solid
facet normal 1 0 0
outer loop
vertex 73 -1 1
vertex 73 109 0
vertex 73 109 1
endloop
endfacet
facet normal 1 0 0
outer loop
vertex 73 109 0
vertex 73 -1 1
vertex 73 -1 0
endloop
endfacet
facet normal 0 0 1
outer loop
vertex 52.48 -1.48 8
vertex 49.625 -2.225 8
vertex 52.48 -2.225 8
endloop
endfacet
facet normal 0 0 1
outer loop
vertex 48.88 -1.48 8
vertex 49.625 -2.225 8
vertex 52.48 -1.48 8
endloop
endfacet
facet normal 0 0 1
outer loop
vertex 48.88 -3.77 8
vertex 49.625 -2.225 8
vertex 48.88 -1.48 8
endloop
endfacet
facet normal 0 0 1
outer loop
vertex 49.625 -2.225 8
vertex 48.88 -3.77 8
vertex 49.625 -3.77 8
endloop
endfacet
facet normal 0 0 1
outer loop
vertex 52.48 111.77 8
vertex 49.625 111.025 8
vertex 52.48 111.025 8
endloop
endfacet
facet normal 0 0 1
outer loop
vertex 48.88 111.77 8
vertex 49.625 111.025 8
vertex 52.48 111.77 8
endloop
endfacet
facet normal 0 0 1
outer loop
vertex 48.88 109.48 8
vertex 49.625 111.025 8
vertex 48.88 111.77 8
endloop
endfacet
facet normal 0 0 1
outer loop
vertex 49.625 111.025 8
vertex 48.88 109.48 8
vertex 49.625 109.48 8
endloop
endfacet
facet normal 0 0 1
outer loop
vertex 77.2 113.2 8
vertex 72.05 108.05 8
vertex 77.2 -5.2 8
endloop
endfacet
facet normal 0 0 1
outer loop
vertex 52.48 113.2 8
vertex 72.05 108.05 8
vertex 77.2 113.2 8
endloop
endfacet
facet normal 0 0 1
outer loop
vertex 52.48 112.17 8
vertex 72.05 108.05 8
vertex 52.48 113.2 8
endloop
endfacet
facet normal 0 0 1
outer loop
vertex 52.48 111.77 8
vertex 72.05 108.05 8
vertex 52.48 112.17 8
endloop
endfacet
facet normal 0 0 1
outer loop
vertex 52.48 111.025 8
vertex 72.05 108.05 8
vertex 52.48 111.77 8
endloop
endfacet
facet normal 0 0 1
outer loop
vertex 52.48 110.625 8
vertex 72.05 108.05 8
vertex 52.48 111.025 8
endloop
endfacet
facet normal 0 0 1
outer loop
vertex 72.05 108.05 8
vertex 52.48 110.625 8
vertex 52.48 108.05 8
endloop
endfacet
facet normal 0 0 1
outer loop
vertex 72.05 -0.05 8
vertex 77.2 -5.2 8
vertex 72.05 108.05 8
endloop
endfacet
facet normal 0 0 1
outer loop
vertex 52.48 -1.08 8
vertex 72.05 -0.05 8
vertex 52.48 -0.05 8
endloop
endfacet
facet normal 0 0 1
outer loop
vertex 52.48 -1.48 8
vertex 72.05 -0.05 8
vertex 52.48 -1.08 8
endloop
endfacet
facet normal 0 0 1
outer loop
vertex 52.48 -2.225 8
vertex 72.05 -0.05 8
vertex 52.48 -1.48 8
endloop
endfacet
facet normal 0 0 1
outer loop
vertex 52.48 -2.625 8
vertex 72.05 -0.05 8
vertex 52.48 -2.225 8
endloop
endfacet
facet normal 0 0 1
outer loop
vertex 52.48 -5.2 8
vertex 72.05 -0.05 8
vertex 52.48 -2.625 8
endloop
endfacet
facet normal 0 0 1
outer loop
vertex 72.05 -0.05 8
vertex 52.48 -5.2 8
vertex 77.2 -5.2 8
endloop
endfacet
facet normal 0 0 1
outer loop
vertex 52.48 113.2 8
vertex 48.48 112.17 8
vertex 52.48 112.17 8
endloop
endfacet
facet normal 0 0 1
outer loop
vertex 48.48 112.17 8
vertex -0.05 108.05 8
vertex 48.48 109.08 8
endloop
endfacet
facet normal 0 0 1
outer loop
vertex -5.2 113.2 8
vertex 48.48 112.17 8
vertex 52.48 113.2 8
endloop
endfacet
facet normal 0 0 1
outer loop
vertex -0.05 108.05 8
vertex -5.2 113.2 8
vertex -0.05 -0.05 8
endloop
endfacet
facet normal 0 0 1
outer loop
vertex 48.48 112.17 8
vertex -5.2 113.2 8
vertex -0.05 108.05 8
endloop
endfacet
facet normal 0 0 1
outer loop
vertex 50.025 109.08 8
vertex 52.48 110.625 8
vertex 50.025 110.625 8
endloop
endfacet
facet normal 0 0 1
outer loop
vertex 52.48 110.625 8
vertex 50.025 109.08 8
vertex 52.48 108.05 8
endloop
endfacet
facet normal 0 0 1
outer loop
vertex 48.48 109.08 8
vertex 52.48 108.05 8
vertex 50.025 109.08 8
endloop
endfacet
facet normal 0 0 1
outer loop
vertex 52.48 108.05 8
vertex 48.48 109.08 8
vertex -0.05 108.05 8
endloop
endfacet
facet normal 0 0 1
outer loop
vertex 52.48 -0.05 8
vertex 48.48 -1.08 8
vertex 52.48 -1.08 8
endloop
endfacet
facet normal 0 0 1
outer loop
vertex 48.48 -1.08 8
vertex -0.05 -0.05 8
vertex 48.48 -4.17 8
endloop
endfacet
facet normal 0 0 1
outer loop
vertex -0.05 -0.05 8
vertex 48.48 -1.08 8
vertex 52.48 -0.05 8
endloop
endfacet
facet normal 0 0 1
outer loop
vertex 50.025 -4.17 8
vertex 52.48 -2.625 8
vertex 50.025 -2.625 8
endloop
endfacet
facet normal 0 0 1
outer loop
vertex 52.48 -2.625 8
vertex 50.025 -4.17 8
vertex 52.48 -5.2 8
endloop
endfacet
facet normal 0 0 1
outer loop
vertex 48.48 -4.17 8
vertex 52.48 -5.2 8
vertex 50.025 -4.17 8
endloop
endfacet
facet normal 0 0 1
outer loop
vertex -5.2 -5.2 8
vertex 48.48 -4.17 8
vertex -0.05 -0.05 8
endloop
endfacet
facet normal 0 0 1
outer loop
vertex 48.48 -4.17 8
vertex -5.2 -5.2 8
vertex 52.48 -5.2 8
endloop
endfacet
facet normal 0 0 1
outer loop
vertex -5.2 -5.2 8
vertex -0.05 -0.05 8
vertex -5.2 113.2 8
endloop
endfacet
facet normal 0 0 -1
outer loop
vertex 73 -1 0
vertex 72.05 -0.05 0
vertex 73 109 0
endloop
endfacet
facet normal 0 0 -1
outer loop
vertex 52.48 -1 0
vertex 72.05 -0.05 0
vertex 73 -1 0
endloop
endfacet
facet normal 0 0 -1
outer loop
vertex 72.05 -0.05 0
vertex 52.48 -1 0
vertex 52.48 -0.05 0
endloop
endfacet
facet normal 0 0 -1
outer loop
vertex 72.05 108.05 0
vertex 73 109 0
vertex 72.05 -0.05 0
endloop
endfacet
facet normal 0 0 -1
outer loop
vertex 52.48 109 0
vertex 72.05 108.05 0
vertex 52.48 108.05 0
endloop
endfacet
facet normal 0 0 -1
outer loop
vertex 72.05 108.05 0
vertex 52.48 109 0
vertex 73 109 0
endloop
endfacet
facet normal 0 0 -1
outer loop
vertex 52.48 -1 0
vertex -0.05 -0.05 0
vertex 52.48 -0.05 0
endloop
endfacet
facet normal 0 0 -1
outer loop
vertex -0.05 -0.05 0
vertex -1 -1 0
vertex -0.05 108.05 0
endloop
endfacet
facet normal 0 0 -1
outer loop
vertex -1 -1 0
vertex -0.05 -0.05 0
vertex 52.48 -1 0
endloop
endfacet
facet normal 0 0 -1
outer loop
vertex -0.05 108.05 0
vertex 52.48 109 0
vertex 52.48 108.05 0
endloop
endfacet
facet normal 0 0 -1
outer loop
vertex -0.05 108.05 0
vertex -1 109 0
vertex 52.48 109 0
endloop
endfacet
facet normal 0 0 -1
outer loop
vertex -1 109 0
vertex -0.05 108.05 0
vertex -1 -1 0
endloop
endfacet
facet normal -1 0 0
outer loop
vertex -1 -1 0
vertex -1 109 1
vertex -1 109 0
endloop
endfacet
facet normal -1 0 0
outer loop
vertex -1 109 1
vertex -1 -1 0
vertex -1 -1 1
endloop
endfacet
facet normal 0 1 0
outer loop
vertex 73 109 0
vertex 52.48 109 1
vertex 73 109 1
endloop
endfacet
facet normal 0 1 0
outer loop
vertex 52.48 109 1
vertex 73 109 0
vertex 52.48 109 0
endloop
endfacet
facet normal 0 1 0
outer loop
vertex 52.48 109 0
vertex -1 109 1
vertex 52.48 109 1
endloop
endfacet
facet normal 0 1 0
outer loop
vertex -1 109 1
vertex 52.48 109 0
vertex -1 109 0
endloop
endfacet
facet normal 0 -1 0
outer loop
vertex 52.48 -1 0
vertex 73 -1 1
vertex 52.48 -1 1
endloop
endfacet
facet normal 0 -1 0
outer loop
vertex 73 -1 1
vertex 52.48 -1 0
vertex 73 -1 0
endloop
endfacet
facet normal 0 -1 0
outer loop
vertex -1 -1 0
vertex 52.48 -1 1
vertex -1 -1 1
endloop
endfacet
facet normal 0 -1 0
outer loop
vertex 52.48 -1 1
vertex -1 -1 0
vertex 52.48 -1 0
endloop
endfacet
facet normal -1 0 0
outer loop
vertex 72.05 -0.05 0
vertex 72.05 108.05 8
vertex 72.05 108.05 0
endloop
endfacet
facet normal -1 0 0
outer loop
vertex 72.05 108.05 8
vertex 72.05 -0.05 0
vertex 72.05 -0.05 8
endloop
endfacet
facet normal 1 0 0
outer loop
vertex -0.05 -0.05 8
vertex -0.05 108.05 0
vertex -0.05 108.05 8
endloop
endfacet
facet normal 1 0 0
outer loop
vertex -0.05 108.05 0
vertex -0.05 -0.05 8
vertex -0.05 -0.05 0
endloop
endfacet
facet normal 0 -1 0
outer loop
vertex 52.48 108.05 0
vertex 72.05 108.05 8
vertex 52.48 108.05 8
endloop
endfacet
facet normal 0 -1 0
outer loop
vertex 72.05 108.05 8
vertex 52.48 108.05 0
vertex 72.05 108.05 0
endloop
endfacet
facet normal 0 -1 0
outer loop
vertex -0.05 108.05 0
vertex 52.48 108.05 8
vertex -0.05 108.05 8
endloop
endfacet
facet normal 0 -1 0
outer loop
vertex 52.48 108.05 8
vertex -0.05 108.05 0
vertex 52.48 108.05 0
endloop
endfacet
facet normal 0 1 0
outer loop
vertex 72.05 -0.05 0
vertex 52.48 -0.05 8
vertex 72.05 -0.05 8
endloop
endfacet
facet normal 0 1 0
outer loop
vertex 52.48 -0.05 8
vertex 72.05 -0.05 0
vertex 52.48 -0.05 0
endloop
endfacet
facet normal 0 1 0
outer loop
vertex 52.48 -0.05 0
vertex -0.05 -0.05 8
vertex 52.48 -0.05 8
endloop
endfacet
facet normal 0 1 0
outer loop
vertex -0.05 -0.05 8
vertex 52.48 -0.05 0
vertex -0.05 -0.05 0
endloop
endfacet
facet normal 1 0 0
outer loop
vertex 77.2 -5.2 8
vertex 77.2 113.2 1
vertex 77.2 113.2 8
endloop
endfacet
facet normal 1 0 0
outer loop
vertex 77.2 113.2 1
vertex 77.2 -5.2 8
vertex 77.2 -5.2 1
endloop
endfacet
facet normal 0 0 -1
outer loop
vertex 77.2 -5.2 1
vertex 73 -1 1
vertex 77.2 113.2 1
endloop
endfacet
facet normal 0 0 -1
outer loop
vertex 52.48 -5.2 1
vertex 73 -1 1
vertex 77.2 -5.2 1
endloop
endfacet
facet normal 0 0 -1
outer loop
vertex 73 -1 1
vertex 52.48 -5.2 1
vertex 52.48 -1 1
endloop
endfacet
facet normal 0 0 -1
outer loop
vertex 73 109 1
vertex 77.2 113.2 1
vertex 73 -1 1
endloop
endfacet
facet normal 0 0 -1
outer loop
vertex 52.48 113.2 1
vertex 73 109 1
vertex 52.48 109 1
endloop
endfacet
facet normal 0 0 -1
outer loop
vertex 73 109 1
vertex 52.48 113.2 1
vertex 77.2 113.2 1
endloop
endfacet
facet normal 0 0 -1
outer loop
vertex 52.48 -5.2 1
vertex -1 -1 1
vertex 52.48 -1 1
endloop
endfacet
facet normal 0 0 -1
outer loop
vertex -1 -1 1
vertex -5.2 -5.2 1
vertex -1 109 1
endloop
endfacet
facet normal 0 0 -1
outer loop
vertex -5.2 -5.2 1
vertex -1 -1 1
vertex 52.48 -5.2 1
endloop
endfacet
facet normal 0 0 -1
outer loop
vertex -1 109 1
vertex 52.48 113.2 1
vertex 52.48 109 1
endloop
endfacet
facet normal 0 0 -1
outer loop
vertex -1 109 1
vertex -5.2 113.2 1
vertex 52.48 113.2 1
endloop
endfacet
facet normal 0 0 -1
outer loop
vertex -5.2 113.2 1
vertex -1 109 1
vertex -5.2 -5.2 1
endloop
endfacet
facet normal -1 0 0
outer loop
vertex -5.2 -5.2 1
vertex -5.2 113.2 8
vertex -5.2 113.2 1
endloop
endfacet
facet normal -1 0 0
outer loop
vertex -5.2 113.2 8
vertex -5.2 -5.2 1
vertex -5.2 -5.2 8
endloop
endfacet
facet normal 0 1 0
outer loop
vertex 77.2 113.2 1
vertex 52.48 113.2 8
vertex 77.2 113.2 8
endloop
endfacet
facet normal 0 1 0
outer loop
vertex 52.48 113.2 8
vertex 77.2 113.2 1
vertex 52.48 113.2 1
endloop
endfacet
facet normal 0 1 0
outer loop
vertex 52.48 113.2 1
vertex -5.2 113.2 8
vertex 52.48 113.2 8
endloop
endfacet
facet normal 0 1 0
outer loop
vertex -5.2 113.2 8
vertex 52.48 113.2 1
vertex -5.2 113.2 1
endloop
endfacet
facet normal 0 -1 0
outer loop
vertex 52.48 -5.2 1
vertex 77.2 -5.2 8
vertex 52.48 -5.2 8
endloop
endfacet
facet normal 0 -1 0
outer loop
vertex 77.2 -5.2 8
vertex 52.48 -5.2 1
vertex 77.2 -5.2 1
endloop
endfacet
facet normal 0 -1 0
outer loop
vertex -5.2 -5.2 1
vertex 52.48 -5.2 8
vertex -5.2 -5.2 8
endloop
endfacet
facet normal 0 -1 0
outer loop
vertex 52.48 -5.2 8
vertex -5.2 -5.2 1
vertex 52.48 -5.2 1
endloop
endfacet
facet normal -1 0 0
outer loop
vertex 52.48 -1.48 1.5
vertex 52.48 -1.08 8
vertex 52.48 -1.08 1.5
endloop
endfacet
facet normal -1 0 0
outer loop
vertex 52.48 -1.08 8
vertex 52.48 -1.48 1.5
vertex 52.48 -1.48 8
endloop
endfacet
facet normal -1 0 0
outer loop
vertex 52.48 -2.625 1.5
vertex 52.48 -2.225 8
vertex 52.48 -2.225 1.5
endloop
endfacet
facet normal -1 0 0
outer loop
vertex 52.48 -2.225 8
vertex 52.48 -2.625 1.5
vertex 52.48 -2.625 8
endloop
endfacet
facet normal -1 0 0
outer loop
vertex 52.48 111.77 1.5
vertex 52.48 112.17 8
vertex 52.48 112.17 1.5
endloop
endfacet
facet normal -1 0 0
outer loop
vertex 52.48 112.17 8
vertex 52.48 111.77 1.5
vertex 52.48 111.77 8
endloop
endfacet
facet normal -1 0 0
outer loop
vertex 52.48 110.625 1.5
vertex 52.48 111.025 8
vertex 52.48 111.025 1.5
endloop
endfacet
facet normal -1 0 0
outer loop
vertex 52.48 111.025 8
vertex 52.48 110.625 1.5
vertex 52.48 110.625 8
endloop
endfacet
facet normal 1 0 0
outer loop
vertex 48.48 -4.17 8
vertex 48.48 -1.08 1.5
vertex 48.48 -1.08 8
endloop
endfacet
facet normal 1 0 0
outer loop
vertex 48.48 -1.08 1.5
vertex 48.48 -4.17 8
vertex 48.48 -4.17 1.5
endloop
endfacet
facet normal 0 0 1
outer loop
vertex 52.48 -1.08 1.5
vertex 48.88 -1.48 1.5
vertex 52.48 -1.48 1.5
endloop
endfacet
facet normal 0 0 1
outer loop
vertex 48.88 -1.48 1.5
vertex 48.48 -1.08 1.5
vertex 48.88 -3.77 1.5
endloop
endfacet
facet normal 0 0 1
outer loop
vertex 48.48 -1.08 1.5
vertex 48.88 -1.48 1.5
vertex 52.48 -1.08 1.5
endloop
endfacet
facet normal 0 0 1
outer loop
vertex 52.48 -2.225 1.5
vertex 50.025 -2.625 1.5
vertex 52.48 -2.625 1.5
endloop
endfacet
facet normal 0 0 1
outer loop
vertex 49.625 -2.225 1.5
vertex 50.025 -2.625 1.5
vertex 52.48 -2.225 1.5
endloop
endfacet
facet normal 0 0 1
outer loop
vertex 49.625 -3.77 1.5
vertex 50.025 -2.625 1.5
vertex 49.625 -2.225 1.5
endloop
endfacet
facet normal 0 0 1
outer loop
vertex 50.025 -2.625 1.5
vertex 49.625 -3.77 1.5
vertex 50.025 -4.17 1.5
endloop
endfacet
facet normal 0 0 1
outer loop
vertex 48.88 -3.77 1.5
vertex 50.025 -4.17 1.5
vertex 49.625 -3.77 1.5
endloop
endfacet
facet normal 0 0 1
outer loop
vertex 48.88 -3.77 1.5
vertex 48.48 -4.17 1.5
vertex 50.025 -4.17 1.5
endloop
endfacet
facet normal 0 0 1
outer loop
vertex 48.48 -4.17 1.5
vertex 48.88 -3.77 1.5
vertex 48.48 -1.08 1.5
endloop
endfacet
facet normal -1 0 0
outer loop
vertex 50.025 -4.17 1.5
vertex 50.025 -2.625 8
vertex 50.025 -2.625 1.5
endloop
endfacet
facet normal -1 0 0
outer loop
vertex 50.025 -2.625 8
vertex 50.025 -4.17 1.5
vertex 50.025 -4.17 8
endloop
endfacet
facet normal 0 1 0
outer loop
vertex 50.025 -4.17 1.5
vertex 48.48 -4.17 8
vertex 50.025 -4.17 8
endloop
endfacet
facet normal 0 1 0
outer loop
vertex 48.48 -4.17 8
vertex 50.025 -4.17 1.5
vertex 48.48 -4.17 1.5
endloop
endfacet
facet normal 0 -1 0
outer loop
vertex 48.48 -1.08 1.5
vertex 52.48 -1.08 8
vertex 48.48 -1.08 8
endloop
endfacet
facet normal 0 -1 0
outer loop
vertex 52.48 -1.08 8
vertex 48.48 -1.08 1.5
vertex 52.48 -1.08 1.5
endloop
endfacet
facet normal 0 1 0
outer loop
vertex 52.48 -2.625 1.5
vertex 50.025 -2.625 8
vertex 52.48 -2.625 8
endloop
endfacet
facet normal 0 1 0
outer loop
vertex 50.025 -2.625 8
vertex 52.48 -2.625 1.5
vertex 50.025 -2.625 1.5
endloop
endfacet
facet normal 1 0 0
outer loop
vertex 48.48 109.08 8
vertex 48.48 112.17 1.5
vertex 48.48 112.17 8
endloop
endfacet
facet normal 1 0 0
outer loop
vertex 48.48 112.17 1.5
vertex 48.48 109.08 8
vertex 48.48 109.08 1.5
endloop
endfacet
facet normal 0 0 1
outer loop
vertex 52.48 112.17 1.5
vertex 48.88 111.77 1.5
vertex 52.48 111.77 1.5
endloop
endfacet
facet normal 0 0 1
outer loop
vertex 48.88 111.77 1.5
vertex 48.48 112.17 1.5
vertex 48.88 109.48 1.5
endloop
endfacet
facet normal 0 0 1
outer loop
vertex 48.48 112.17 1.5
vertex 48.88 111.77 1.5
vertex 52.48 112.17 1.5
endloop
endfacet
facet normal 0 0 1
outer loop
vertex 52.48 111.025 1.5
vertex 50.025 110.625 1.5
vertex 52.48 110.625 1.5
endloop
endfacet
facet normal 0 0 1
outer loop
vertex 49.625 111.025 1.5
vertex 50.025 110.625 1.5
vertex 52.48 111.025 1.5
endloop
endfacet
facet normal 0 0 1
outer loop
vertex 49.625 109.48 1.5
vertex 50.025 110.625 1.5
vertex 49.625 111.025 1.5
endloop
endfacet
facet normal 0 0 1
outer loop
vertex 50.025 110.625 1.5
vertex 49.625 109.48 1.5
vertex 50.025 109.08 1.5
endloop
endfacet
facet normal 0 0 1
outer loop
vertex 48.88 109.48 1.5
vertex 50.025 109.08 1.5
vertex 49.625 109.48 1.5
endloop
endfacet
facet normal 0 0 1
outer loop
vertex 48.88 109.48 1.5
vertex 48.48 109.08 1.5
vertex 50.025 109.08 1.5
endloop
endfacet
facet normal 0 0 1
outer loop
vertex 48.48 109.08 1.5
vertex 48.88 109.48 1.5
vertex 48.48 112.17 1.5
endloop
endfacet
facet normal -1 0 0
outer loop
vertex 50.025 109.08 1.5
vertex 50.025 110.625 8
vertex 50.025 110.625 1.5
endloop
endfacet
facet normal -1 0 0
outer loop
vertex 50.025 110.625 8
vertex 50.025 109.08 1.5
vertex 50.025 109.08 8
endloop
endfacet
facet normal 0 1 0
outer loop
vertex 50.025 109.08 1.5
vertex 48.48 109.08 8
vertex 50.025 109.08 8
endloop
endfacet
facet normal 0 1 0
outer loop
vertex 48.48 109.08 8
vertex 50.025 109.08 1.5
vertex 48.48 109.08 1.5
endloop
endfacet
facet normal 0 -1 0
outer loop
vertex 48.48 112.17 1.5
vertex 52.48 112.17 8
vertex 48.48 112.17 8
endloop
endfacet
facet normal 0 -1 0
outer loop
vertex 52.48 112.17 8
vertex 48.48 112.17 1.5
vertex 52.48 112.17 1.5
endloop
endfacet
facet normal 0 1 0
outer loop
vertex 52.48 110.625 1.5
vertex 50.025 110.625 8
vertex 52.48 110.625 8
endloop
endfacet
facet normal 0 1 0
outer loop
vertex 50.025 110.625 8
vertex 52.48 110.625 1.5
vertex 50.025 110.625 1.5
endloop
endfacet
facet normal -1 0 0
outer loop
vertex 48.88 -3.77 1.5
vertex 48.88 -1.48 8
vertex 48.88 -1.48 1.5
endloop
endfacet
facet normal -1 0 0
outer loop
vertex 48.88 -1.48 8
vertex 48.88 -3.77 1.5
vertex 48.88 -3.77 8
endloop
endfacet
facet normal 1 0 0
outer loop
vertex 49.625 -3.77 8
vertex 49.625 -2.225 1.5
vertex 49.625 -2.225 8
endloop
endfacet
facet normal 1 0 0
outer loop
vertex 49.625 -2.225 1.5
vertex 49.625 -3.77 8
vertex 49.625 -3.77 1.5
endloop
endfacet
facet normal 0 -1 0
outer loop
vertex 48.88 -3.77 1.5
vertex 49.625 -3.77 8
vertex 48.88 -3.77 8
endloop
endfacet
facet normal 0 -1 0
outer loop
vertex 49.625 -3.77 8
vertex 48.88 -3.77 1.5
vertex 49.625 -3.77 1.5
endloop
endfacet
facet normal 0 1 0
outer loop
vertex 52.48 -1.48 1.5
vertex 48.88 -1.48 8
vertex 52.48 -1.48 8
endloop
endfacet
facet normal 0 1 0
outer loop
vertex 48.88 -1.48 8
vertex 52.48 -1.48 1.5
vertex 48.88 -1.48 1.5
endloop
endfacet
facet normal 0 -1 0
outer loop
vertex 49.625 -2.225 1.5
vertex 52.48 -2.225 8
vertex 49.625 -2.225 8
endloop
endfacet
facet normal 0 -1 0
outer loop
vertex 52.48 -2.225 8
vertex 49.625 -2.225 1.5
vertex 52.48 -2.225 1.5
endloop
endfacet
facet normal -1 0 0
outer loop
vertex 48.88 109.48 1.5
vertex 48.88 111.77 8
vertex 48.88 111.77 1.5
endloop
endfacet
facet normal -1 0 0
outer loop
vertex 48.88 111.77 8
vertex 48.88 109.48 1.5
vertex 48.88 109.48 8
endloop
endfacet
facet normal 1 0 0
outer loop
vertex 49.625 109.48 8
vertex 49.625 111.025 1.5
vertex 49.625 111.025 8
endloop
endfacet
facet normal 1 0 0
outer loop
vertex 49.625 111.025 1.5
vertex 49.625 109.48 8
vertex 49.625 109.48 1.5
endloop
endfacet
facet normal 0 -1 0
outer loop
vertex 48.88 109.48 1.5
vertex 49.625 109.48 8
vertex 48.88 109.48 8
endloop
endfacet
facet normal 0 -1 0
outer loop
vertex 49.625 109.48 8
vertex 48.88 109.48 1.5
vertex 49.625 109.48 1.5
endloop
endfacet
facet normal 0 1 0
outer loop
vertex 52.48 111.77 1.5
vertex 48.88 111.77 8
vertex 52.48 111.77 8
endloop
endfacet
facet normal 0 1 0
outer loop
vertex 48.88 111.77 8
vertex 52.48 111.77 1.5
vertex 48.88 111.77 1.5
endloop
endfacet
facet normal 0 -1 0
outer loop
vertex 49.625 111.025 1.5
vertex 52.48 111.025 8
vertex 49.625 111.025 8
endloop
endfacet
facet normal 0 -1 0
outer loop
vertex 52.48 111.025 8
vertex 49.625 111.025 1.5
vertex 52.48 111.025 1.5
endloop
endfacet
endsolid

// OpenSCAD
// Generated by SolidPython 1.0.4 on 2021-01-27 23:57:22


union() {
	difference() {
		difference() {
			difference() {
				union() {
					difference() {
						translate(v = [-1.0000000000, -1.0000000000, 0]) {
							cube(size = [74.0000000000, 110.0000000000, 8]);
						}
						translate(v = [-0.0500000000, -0.0500000000, 0]) {
							cube(size = [72.1000000000, 108.1000000000, 8]);
						}
					}
					translate(v = [0, 0, 1]) {
						difference() {
							translate(v = [-5.2000000000, -5.2000000000, 0]) {
								cube(size = [82.4000000000, 118.4000000000, 7]);
							}
							translate(v = [-1.0000000000, -1.0000000000, 0]) {
								cube(size = [74.0000000000, 110.0000000000, 7]);
							}
						}
					}
				}
				translate(v = [52.4800000000, -5.2000000000, 0]) {
					cube(size = [24.7200000000, 118.4000000000, 8]);
				}
			}
			translate(v = [48.4800000000, -4.1700000000, 0]) {
				translate(v = [0, 0, 1.5000000000]) {
					translate(v = [4, 3.0900000000, 0]) {
						rotate(a = -180) {
							union() {
								translate(v = [2.4550000000, 0, 0]) {
									cube(size = [1.5450000000, 3.0900000000, 6.5000000000]);
								}
								cube(size = [4, 1.5450000000, 6.5000000000]);
							}
						}
					}
				}
			}
		}
		translate(v = [48.4800000000, 109.0800000000, 0]) {
			translate(v = [0, 0, 1.5000000000]) {
				translate(v = [4, 3.0900000000, 0]) {
					rotate(a = -180) {
						union() {
							translate(v = [2.4550000000, 0, 0]) {
								cube(size = [1.5450000000, 3.0900000000, 6.5000000000]);
							}
							cube(size = [4, 1.5450000000, 6.5000000000]);
						}
					}
				}
			}
		}
	}
	union() {
		union() {
			difference() {
				union() {
					difference() {
						translate(v = [-1.0000000000, -1.0000000000, 0]) {
							cube(size = [74.0000000000, 110.0000000000, 8]);
						}
						translate(v = [-0.0500000000, -0.0500000000, 0]) {
							cube(size = [72.1000000000, 108.1000000000, 8]);
						}
					}
					translate(v = [0, 0, 1]) {
						difference() {
							translate(v = [-5.2000000000, -5.2000000000, 0]) {
								cube(size = [82.4000000000, 118.4000000000, 7]);
							}
							translate(v = [-1.0000000000, -1.0000000000, 0]) {
								cube(size = [74.0000000000, 110.0000000000, 7]);
							}
						}
					}
				}
				translate(v = [-5.2000000000, -5.2000000000, 0]) {
					cube(size = [57.6800000000, 118.4000000000, 8]);
				}
			}
			translate(v = [48.4800000000, -4.1700000000, 0]) {
				translate(v = [0.4000000000, 0.4000000000, 0]) {
					translate(v = [0, 0, 1.5000000000]) {
						translate(v = [3.6000000000, 2.2900000000, 0]) {
							rotate(a = -180) {
								union() {
									translate(v = [2.8550000000, 0, 0]) {
										cube(size = [0.7450000000, 2.2900000000, 6.5000000000]);
									}
									cube(size = [3.6000000000, 0.7450000000, 6.5000000000]);
								}
							}
						}
					}
				}
			}
		}
		translate(v = [48.4800000000, 109.0800000000, 0]) {
			translate(v = [0.4000000000, 0.4000000000, 0]) {
				translate(v = [0, 0, 1.5000000000]) {
					translate(v = [3.6000000000, 2.2900000000, 0]) {
						rotate(a = -180) {
							union() {
								translate(v = [2.8550000000, 0, 0]) {
									cube(size = [0.7450000000, 2.2900000000, 6.5000000000]);
								}
								cube(size = [3.6000000000, 0.7450000000, 6.5000000000]);
							}
						}
					}
				}
			}
		}
	}
}
